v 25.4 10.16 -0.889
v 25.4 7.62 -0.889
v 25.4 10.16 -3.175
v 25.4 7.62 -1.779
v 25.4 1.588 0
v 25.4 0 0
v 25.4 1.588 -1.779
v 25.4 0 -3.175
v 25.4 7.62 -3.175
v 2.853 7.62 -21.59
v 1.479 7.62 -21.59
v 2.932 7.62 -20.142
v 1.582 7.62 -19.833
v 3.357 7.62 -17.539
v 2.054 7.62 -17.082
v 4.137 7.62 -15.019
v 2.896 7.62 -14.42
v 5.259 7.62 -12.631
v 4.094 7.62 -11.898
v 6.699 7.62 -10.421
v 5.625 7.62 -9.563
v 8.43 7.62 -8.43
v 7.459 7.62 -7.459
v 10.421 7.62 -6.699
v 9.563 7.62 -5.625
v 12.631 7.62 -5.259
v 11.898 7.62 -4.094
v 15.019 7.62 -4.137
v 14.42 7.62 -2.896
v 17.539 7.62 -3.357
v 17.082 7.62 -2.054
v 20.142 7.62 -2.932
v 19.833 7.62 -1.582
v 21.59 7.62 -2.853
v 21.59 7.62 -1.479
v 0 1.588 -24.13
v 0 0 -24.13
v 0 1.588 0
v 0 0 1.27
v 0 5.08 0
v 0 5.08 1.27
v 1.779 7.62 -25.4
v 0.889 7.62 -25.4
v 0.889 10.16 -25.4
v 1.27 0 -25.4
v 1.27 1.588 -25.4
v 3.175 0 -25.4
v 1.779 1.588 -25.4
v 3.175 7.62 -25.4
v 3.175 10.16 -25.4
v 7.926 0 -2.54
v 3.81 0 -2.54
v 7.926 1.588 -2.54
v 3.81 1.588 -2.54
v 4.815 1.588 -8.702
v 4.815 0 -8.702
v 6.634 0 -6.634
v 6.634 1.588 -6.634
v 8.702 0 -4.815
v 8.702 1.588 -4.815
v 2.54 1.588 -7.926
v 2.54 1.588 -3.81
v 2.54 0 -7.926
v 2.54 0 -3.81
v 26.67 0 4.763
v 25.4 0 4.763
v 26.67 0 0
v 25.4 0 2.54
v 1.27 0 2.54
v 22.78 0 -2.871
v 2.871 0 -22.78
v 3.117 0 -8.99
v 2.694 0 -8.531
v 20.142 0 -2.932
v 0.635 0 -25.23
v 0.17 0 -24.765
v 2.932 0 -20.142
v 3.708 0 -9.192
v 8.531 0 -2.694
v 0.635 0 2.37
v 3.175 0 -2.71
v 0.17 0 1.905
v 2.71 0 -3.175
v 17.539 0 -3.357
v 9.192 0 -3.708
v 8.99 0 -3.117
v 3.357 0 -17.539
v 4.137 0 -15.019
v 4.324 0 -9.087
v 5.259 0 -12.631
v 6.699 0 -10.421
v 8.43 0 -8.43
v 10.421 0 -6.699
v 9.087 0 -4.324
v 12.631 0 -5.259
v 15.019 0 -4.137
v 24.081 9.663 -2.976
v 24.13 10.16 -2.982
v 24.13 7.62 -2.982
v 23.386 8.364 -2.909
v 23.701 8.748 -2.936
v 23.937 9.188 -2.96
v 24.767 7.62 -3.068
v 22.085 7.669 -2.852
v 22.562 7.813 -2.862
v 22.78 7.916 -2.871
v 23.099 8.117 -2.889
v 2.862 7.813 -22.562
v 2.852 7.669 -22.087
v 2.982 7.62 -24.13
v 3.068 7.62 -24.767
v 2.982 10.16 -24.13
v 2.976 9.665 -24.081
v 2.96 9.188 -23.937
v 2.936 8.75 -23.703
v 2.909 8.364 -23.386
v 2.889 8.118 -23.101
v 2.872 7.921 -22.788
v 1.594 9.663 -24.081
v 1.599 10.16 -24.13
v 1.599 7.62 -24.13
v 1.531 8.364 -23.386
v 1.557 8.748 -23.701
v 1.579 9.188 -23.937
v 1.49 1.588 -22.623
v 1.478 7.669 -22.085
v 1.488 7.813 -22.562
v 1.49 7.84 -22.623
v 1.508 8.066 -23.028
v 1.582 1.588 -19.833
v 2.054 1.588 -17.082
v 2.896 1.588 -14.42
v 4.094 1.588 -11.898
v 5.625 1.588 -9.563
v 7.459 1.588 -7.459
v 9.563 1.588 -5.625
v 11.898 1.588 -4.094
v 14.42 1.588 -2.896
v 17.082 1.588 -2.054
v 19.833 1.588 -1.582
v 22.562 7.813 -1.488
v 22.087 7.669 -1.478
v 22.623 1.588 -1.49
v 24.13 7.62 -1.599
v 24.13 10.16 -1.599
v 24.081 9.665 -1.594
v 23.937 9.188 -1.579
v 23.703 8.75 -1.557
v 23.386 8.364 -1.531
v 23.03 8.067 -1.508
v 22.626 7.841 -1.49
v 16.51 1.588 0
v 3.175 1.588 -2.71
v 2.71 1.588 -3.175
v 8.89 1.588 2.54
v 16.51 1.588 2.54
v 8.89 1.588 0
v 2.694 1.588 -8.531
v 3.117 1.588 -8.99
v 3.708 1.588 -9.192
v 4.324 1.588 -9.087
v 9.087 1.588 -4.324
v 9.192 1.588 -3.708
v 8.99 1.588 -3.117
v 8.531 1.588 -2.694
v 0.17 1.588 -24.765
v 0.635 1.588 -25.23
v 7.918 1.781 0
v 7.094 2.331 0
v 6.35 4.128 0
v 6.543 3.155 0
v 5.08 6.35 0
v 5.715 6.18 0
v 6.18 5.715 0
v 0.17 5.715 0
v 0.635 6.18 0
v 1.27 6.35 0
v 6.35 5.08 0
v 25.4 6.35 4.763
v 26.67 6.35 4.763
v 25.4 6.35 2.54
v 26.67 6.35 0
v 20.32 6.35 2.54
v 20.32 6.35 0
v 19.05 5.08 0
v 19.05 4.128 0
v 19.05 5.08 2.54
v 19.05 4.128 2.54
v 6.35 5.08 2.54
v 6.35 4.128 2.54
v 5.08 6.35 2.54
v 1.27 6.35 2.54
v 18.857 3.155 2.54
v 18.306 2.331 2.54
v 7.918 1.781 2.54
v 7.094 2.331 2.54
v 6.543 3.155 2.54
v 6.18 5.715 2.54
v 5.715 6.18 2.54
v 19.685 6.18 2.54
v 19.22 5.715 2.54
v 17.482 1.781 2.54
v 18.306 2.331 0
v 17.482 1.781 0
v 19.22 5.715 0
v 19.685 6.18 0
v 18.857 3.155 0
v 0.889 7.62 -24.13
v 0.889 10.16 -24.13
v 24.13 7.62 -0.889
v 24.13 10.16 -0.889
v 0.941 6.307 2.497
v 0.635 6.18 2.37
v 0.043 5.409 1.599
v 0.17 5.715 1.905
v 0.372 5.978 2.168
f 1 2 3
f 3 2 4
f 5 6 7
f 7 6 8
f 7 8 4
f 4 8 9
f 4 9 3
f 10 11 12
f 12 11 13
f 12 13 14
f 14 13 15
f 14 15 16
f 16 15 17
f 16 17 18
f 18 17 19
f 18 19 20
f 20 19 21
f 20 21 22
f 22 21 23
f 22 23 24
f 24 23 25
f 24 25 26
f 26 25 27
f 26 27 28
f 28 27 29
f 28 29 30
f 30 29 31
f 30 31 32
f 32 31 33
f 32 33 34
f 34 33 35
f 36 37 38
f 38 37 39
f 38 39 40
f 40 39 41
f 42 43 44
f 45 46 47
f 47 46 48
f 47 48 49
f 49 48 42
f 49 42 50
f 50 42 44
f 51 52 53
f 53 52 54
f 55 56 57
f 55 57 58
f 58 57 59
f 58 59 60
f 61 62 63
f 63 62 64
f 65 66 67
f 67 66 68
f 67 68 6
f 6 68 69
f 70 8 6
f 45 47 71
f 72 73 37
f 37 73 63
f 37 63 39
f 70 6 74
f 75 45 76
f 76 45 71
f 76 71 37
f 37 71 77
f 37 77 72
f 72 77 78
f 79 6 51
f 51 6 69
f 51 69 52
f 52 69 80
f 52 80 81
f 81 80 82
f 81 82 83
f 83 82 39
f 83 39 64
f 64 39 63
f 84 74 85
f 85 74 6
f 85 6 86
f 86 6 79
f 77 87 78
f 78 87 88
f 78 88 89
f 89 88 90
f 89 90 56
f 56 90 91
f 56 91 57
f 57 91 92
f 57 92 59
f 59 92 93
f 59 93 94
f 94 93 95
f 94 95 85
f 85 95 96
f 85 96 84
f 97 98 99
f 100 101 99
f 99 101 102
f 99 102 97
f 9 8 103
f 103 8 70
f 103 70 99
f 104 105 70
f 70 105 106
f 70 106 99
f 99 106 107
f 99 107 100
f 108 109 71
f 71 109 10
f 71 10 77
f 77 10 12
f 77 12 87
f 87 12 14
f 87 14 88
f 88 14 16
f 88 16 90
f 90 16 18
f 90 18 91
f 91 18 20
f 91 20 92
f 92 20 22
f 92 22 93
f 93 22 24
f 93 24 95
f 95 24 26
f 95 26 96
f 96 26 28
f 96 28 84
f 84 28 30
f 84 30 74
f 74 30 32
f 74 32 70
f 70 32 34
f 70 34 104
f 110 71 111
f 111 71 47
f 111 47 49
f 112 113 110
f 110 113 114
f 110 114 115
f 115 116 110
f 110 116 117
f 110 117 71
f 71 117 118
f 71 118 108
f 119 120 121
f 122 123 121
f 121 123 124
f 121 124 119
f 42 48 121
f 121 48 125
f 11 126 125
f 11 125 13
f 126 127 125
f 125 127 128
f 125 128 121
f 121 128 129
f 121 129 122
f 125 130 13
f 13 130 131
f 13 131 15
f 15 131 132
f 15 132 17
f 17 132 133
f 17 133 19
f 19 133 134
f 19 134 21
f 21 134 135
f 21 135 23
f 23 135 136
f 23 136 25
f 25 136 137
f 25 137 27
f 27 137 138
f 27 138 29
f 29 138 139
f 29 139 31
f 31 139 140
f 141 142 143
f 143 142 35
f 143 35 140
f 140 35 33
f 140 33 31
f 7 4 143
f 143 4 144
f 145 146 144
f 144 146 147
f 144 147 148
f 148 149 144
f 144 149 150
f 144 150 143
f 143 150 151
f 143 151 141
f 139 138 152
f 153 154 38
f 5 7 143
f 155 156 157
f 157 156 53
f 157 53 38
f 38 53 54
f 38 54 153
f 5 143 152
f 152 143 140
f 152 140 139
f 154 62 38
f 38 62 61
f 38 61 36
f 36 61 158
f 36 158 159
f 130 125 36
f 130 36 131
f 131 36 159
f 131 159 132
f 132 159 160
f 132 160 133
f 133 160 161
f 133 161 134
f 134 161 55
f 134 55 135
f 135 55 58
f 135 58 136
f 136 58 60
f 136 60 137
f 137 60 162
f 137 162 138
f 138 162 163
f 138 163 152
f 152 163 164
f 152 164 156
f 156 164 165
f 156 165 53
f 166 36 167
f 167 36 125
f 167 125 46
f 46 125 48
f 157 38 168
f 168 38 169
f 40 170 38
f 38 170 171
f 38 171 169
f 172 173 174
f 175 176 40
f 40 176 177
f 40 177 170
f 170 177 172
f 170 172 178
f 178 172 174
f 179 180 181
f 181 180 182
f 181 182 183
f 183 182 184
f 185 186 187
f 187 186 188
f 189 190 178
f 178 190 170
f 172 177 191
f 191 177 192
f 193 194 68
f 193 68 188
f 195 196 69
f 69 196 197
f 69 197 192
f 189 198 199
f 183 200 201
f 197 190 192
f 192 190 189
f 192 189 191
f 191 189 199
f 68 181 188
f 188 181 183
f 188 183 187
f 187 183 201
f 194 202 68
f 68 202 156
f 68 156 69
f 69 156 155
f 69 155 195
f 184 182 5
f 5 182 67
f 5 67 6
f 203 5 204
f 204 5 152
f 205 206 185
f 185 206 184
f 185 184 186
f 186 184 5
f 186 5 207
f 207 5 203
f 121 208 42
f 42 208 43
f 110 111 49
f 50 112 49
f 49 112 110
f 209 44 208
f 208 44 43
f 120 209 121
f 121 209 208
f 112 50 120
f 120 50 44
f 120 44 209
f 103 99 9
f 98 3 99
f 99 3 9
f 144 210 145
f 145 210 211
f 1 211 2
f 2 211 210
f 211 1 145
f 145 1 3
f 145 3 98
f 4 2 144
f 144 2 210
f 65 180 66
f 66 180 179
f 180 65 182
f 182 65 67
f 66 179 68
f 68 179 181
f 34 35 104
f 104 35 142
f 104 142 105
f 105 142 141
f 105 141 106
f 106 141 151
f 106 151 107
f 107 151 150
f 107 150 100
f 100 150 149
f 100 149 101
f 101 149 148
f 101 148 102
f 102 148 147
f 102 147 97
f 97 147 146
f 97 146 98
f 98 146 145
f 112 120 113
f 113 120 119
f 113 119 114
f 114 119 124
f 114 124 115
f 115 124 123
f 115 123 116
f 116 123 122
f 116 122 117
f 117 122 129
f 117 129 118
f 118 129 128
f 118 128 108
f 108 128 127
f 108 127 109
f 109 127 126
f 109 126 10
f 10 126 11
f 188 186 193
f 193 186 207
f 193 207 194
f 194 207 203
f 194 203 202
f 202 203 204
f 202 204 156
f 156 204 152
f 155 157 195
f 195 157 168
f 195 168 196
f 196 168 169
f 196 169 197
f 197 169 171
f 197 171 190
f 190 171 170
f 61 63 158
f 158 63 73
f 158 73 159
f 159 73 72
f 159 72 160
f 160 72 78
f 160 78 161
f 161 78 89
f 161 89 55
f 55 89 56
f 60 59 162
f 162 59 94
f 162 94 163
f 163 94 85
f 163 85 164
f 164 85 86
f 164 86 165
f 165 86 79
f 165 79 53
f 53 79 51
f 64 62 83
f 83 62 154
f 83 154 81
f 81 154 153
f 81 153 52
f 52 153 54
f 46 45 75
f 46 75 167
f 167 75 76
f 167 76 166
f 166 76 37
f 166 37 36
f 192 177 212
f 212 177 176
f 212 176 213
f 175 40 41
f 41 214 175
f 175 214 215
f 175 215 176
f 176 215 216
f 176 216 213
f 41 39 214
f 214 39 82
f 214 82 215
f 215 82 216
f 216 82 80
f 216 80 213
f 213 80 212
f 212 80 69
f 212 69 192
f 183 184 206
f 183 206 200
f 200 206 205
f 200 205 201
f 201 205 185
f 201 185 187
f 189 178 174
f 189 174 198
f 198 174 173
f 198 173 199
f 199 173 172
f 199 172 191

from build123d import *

# Parameters (mm, degrees)
BOSS_EXTRUDE1_DEPTH = 7.62
SKETCH2_R           = 33.285248113
SKETCH2_R_2         = 20.423872842
CUT_EXTRUDE1_DEPTH  = 6.0325
BOSS_EXTRUDE2_DEPTH = 2.54
BOSS_EXTRUDE3_DEPTH = 2.54
SKETCH5_W           = 4.7625
SKETCH5_H           = 6.35
BOSS_EXTRUDE4_DEPTH = 1.27
FILLET1_R           = 2.54
FILLET2_R           = 1.27


with BuildPart() as part:
    # Sketch1 → Boss-Extrude1 (new body)
    with BuildSketch(Plane(origin=(0, 0, 0), x_dir=(1, 0, 0), z_dir=(0, 1, 0))):
        with BuildLine():
            Line((0, 0), (25.4, 0))
            Line((25.4, 0), (25.4, 3.175))
            ThreePointArc((25.4, 3.175), (8.430498362, 8.430498362), (3.175, 25.4))
            Line((3.175, 25.4), (0, 25.4))
            Line((0, 25.4), (0, 0))
        make_face()
        with BuildLine():
            Line((2.54, 2.54), (2.54, 12.34659936))
            ThreePointArc((2.54, 12.34659936), (6.634447137, 6.634447137), (12.34659936, 2.54))
            Line((12.34659936, 2.54), (2.54, 2.54))
        make_face(mode=Mode.SUBTRACT)
    extrude(amount=BOSS_EXTRUDE1_DEPTH)

    # Sketch2 → Cut-Extrude1 (cut)
    with BuildSketch(Plane(origin=(0, 7.62, 0), x_dir=(1, 0, 0), z_dir=(0, 1, 0))):
        with Locations((21.900882543, 21.900882543)):
            Circle(SKETCH2_R)
        with Locations((21.900882543, 21.900882543)):
            Circle(SKETCH2_R_2, mode=Mode.SUBTRACT)
    extrude(amount=-CUT_EXTRUDE1_DEPTH, mode=Mode.SUBTRACT)

    # Sketch3 → Boss-Extrude2 (add)
    with BuildSketch(Plane.XY):
        Polygon((0, 0), (0, 6.35), (6.35, 6.35), (6.35, 1.5875), (19.05, 1.5875), (19.05, 6.35), (25.4, 6.35), (25.4, 0), align=None)
    extrude(amount=BOSS_EXTRUDE2_DEPTH)

    # Sketch4 → Boss-Extrude3 (add)
    with BuildSketch(Plane(origin=(0, 7.62, 0), x_dir=(1, 0, 0), z_dir=(0, 1, 0))):
        Polygon((3.175, 25.4), (0.889492523, 25.4), (0.889492523, 24.13), (2.981751079, 24.13), align=None)
        Polygon((25.4, 3.175), (25.4, 0.889492523), (24.13, 0.889492523), (24.13, 2.981751079), align=None)
    extrude(amount=BOSS_EXTRUDE3_DEPTH)

    # Sketch5 → Boss-Extrude4 (add)
    with BuildSketch(Plane(origin=(25.4, 0, 0), x_dir=(0, 0, -1), z_dir=(1, 0, 0))):
        with Locations((-2.38125, 3.175)):
            Rectangle(SKETCH5_W, SKETCH5_H)
    extrude(amount=BOSS_EXTRUDE4_DEPTH)

    # Fillet1
    # the kernel refuses this fillet: 2.54 mm, written as the material it adds along each edge
    with BuildSketch(Plane(origin=(19.05, 1.5875, 0), x_dir=(0, 1, 0), z_dir=(0, 0, 1))) as fillet1_piece_1:
        with BuildLine():
            CenterArc((FILLET1_R, FILLET1_R), FILLET1_R, 180, 90)
            Line((0, FILLET1_R), (0, 0))
            Line((0, 0), (FILLET1_R, 0))
        make_face()
    extrude(amount=2.54)
    with BuildSketch(Plane(origin=(6.35, 1.5875, 0), x_dir=(0, 1, 0), z_dir=(0, 0, 1))) as fillet1_piece_2:
        with BuildLine():
            CenterArc((FILLET1_R, -FILLET1_R), FILLET1_R, 90, 90)
            Line((0, -FILLET1_R), (0, 0))
            Line((0, 0), (FILLET1_R, 0))
        make_face()
    extrude(amount=2.54)
    with BuildSketch(Plane(origin=(-4.750979865, 7.62, -24.13), x_dir=(0, 0, 1), z_dir=(1, 0, 0))) as fillet1_piece_3_section:
        with BuildLine():
            CenterArc((FILLET1_R, -FILLET1_R), FILLET1_R, 90, 90)
            Line((0, -FILLET1_R), (0, 0))
            Line((0, 0), (FILLET1_R, 0))
        make_face()
    fillet1_piece_3 = extrude(amount=14.082730944, mode=Mode.PRIVATE)
    fillet1_piece_3 = fillet1_piece_3 & Plane(origin=(21.900882543, 8.195059905, -21.900882543), x_dir=(1, 0, 0), z_dir=(0, 1, 0)) * Cylinder(20.423872842, 39, mode=Mode.PRIVATE)
    fillet1_piece_3 = fillet1_piece_3 - Plane(origin=(21.900882543, 8.195059905, -21.900882543), x_dir=(0.18368070639060669, 0, 0.98298596027606), z_dir=(0, -1, 0)) * Cylinder(19.05, 39, mode=Mode.PRIVATE)
    add(fillet1_piece_3)
    with BuildSketch(Plane(origin=(24.13, 7.62, 4.750979865), x_dir=(0, 1, 0), z_dir=(0, 0, -1))) as fillet1_piece_4_section:
        with BuildLine():
            CenterArc((FILLET1_R, -FILLET1_R), FILLET1_R, 90, 90)
            Line((0, -FILLET1_R), (0, 0))
            Line((0, 0), (FILLET1_R, 0))
        make_face()
    fillet1_piece_4 = extrude(amount=14.082730944, mode=Mode.PRIVATE)
    fillet1_piece_4 = fillet1_piece_4 & Plane(origin=(21.900882543, 8.195056038, -21.900882543), x_dir=(1, 0, 0), z_dir=(0, 1, 0)) * Cylinder(20.423872842, 39, mode=Mode.PRIVATE)
    fillet1_piece_4 = fillet1_piece_4 - Plane(origin=(21.900882543, 8.195056038, -21.900882543), x_dir=(0.18368070639060669, 0, 0.98298596027606), z_dir=(0, -1, 0)) * Cylinder(19.05, 39, mode=Mode.PRIVATE)
    add(fillet1_piece_4)

    # Fillet2
    fillet2_edges = [part.edges().sort_by_distance(p)[0] for p in [
        (2.54, 0.79375, -12.34659936),
        (2.54, 0.79375, -2.54),
        (12.34659936, 0.79375, -2.54),
        (0, 0.79375, -25.4),
        (19.05, 6.35, 1.27),
        (6.35, 6.35, 1.27),
        (0, 6.35, 1.27),
        (0, 3.175, 2.54),
    ]]
    fillet(fillet2_edges, radius=FILLET2_R)


solid = part.part
